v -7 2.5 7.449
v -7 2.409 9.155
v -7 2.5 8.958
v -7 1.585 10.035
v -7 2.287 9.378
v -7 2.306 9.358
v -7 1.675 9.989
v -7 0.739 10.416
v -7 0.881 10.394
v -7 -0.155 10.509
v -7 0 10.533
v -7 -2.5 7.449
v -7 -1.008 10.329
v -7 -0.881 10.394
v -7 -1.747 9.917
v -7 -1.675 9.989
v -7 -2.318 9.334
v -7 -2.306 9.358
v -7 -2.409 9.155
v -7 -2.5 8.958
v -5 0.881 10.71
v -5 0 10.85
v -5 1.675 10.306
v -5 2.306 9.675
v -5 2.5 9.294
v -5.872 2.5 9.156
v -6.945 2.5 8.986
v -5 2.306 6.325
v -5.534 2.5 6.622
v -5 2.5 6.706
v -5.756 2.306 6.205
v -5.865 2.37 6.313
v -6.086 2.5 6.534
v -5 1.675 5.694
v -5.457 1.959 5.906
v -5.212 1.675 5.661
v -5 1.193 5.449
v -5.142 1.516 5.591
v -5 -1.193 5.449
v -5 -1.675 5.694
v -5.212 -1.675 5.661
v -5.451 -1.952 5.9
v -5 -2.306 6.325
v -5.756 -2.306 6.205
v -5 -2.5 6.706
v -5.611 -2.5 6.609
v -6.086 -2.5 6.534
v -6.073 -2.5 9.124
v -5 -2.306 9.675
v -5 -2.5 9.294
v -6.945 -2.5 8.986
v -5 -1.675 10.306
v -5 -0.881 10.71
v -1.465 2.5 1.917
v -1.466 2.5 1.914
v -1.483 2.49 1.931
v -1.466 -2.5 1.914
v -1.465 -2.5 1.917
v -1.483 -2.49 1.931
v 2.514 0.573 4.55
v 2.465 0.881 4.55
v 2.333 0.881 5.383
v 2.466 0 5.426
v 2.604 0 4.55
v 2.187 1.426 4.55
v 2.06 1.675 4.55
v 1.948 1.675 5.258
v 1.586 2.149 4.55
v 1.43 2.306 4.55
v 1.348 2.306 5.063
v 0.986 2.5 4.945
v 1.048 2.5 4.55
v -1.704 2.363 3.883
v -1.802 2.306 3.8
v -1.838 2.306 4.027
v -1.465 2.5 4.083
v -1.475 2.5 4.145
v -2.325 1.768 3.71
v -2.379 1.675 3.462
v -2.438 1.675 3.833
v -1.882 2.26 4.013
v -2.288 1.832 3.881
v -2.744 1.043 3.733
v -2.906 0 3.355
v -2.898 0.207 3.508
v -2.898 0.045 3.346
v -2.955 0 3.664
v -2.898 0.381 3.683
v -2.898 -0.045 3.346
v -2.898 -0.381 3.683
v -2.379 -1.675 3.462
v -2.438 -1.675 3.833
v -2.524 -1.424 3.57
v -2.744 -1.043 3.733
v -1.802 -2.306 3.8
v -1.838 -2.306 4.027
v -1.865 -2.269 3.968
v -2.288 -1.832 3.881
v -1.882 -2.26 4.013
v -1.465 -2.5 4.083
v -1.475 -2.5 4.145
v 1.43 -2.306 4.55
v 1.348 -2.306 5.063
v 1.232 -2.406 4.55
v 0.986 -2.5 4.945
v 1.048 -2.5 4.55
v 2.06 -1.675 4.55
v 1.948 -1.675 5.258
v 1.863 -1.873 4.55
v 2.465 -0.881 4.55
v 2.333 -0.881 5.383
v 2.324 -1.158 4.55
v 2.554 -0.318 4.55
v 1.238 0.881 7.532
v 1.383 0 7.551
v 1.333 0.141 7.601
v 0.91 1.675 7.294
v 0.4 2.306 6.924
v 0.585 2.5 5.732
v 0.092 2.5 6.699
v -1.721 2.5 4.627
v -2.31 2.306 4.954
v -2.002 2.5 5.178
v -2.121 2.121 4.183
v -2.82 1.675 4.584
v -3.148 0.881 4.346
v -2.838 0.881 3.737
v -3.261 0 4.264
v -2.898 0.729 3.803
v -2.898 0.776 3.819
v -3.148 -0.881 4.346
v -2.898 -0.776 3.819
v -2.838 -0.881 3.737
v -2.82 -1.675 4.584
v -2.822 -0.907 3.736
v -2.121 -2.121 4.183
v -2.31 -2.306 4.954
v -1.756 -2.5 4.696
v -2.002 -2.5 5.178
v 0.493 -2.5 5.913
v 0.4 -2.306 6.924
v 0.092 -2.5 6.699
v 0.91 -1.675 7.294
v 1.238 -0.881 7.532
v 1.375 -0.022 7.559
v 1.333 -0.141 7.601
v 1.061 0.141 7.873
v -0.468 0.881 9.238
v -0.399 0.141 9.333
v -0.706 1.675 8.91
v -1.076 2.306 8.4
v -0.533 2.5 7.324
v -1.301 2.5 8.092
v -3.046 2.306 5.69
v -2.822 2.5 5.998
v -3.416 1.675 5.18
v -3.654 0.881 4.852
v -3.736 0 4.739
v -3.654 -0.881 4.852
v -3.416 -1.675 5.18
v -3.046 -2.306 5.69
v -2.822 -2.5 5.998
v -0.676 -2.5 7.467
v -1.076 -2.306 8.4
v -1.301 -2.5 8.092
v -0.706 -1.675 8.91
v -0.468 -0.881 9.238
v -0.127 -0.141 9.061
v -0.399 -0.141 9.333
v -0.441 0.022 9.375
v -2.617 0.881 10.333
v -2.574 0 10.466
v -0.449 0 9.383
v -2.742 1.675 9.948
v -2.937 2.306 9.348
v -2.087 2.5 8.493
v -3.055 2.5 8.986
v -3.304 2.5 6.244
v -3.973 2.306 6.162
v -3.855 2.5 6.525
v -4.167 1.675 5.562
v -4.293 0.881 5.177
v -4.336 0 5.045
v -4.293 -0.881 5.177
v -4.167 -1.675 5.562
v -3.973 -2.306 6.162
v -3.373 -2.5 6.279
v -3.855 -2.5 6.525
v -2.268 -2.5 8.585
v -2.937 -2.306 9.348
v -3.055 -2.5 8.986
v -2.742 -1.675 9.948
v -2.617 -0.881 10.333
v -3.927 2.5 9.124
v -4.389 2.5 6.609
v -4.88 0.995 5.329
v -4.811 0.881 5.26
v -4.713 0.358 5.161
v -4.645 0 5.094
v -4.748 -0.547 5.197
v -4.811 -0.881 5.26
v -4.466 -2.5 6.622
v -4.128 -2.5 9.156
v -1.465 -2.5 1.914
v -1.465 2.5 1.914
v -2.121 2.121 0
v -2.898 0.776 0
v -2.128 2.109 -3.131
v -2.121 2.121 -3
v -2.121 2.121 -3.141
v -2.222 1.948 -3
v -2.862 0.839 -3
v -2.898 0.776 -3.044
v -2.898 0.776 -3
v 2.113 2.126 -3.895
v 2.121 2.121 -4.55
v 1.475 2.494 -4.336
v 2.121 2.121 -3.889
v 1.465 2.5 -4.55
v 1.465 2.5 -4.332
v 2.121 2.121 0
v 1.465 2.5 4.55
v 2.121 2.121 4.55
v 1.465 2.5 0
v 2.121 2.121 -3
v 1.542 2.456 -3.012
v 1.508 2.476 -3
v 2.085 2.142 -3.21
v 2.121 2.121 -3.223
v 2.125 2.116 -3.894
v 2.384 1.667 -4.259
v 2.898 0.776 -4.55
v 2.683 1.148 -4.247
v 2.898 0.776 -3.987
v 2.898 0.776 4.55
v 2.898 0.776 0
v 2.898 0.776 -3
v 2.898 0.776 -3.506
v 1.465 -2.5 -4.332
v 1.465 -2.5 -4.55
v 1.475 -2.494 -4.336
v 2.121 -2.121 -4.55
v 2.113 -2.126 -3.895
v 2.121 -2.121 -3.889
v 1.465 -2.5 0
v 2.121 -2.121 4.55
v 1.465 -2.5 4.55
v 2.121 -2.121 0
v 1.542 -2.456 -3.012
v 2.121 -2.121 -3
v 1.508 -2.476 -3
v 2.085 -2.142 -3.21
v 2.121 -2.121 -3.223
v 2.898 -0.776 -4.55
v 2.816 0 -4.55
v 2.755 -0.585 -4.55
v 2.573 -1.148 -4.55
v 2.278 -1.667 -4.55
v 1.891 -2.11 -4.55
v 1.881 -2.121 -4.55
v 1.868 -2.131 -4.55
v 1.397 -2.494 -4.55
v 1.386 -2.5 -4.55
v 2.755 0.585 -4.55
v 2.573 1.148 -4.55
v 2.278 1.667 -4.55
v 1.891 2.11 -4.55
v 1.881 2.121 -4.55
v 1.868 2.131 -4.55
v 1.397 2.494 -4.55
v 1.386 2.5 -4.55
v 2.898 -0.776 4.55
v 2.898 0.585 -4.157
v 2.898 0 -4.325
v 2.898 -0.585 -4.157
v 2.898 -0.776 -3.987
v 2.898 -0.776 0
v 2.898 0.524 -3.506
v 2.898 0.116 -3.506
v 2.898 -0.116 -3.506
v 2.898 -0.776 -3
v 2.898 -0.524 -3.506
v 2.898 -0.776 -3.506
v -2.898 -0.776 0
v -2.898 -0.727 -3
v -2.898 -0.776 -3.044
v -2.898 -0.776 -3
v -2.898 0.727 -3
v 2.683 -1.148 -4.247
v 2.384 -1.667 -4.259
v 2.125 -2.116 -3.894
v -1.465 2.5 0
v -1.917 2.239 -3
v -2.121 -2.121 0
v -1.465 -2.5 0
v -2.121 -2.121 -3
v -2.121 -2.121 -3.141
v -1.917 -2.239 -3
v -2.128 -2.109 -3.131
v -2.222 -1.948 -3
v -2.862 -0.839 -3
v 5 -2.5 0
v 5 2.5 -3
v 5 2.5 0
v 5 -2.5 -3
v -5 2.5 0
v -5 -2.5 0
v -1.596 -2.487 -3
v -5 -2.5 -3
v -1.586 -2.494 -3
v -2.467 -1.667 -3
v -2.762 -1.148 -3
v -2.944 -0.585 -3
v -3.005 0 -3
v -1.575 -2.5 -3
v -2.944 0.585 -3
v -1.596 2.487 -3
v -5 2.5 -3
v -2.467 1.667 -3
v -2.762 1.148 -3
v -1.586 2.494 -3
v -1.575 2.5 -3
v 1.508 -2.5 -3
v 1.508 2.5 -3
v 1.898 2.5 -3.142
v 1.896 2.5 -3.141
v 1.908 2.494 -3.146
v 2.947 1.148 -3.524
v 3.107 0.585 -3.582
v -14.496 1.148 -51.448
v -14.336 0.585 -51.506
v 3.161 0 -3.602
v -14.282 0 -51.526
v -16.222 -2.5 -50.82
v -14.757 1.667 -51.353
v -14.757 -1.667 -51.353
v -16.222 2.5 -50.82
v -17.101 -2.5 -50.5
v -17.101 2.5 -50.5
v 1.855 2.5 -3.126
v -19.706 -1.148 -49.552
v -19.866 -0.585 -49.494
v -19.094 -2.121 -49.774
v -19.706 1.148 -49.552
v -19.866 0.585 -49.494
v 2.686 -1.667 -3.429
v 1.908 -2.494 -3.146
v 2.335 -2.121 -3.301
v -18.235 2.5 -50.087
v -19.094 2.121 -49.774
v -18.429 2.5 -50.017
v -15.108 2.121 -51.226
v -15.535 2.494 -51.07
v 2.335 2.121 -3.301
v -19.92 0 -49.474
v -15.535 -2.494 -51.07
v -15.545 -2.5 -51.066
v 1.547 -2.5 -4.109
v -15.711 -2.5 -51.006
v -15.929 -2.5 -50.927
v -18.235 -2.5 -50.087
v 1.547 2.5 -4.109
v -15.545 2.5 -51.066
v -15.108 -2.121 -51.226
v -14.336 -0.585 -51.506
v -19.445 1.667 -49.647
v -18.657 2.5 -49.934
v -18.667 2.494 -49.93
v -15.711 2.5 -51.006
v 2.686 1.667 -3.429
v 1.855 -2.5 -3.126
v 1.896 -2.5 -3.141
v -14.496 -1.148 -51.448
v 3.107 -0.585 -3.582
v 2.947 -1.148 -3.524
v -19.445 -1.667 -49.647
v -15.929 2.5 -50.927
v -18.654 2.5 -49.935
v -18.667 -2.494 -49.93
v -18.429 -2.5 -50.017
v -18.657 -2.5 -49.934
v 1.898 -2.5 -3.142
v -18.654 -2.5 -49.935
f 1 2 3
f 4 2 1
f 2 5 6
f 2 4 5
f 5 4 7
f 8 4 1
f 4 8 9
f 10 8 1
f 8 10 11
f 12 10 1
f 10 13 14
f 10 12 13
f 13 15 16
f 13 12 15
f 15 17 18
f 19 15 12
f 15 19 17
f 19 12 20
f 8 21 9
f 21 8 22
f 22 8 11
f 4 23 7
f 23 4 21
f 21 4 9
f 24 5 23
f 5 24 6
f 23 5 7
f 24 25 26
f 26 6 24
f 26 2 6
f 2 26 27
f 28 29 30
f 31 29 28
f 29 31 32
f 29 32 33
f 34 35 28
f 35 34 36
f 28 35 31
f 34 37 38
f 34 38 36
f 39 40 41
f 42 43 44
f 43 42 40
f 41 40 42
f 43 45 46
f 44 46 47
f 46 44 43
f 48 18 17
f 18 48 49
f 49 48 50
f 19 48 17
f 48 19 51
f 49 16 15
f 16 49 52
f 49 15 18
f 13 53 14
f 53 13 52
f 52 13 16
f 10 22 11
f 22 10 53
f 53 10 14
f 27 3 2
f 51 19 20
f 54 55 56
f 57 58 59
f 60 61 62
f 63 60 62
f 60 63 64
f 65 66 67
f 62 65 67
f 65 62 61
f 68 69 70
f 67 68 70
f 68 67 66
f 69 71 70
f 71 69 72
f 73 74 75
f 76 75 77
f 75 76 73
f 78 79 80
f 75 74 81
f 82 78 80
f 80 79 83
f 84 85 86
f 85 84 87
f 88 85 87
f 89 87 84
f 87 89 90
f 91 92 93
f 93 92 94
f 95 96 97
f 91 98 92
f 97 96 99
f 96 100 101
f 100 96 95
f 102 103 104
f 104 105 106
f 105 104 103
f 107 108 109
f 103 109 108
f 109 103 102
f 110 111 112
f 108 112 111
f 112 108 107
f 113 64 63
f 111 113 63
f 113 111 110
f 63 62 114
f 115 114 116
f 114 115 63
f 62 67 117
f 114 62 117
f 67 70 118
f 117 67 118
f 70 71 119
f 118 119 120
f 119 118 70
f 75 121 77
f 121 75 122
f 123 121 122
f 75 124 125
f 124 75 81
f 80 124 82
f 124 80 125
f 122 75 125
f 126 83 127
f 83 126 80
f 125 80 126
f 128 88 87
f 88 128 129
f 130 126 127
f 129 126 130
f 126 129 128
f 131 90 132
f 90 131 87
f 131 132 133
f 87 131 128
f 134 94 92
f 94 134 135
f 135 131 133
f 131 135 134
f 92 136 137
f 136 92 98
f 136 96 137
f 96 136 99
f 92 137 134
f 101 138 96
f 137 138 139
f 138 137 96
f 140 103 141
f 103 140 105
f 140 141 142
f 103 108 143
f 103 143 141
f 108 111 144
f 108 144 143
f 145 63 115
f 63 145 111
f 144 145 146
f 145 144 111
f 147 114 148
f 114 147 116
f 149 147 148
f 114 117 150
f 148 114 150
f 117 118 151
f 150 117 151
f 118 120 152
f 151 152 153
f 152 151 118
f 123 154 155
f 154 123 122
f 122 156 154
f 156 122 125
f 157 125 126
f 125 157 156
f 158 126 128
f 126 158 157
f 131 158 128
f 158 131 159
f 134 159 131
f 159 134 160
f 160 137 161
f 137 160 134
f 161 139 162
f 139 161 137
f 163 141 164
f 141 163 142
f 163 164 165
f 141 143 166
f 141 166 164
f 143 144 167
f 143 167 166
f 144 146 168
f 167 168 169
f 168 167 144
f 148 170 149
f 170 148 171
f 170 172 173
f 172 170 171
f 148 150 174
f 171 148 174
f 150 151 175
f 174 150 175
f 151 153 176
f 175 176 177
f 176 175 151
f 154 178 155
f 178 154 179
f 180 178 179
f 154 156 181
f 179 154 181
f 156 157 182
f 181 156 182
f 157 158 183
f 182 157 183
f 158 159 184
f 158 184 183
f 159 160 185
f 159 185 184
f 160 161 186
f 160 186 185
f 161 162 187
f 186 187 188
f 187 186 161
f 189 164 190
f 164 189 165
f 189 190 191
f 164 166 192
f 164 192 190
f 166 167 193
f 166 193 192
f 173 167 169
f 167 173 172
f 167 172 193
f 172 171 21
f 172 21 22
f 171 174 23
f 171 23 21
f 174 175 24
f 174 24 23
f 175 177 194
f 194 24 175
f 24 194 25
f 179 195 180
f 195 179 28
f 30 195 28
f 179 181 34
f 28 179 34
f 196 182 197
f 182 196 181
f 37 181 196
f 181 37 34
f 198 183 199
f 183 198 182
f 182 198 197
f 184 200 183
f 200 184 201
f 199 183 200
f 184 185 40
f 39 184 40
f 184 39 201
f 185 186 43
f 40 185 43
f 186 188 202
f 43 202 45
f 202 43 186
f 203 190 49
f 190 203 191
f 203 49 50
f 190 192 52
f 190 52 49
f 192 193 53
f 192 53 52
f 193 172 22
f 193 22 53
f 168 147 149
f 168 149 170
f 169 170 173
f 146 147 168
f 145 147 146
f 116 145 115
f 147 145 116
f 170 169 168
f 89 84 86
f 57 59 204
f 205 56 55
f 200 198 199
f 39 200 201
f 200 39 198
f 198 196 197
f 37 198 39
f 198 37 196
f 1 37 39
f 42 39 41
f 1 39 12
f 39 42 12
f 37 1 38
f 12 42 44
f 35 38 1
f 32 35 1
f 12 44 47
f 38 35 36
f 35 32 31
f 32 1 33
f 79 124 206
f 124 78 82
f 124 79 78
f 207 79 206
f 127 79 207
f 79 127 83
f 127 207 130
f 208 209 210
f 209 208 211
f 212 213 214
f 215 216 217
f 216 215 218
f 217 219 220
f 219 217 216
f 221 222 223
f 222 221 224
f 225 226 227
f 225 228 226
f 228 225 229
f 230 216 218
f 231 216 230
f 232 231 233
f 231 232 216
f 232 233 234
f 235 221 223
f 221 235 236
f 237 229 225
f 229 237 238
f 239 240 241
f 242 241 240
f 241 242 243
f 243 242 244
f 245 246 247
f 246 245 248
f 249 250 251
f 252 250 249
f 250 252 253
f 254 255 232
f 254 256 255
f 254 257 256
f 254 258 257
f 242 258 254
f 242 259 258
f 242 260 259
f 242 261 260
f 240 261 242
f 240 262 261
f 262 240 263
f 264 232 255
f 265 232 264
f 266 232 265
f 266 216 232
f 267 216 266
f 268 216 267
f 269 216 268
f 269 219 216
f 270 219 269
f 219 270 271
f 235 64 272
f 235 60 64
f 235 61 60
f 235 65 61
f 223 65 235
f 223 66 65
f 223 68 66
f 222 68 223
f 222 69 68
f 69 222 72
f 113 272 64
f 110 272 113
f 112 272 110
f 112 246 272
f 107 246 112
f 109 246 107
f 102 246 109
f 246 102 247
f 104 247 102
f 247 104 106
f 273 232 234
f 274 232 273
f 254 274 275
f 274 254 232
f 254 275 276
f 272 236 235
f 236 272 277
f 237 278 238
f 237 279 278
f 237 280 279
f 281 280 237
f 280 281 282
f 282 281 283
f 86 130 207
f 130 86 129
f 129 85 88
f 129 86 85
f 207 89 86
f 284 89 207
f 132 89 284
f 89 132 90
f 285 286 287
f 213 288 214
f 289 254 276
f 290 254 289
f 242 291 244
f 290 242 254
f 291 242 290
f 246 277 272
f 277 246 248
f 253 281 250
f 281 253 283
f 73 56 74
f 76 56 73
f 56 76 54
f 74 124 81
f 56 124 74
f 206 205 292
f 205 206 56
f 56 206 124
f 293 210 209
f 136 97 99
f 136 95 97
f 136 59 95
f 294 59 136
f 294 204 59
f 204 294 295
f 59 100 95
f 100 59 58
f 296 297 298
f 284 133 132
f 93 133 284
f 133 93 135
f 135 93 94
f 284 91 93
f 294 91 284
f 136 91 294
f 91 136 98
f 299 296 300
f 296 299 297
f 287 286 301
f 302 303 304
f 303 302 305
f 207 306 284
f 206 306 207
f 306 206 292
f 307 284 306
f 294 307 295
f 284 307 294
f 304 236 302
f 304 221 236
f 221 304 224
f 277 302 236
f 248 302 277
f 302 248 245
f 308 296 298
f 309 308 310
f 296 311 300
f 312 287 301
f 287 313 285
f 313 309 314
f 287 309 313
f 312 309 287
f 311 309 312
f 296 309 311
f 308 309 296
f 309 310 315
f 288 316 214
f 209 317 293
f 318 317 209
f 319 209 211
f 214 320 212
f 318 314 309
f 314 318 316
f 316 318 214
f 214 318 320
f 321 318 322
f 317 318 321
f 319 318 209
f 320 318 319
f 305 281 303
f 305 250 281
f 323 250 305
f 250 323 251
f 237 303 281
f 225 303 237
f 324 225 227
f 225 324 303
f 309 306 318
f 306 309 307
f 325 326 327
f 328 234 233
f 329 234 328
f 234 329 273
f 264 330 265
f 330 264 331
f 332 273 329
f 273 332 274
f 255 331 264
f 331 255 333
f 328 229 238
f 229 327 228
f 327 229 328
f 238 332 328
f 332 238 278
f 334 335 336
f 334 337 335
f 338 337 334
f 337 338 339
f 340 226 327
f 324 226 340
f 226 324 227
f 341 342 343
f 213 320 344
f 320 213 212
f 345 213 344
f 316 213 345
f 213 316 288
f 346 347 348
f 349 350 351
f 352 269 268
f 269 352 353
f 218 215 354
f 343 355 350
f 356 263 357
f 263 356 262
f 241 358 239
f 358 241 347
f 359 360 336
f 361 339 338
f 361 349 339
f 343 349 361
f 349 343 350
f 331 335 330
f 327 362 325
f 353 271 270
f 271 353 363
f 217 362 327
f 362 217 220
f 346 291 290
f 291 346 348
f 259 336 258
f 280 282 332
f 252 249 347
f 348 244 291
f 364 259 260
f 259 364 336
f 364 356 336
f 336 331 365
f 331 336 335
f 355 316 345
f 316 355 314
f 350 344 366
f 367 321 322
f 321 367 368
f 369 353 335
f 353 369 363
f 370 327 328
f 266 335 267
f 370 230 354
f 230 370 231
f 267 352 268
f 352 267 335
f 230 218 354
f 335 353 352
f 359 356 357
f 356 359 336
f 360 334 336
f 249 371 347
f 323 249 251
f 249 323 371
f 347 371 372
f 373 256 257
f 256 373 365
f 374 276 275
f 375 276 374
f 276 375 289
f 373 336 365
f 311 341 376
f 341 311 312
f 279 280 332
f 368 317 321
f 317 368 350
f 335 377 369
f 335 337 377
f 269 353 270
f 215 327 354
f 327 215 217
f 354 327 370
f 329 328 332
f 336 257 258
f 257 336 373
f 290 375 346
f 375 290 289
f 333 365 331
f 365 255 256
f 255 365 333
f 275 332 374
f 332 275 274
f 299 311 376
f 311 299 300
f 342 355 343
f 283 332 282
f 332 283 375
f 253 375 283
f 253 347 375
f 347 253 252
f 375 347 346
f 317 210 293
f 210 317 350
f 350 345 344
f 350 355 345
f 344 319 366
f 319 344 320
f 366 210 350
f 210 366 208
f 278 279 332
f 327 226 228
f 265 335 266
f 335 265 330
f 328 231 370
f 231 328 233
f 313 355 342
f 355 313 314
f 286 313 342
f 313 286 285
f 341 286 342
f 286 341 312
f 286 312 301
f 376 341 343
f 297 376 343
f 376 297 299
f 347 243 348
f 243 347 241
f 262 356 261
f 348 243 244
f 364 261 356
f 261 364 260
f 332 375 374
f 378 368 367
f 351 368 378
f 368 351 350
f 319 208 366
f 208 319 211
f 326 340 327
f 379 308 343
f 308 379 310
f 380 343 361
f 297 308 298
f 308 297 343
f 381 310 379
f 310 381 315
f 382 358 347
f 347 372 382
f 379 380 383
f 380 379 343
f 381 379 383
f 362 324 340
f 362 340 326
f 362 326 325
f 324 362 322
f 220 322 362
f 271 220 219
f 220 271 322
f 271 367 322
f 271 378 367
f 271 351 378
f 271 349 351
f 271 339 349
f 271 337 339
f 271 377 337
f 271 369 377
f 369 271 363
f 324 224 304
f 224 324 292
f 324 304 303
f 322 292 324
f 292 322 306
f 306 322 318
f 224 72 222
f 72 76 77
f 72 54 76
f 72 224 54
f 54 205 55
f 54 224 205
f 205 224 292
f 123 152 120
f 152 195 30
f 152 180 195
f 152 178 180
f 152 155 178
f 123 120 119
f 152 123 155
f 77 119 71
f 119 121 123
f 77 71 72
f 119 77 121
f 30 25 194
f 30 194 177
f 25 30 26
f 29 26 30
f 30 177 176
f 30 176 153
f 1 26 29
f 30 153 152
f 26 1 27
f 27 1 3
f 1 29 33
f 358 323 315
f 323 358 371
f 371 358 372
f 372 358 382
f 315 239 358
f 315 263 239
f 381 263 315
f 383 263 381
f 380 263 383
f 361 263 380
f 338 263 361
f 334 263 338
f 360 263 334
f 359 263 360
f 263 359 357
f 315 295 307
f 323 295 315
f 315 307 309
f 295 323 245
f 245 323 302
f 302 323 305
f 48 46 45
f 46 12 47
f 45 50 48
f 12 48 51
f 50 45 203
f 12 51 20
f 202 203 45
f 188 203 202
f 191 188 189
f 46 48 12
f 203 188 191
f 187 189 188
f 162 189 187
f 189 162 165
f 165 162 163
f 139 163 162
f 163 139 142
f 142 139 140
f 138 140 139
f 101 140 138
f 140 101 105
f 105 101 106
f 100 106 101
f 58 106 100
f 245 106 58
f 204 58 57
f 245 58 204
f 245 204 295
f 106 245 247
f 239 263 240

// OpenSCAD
// file: my-pegboard.scad
// Include this file to make pegstr accomodate my pegboard
include <../pegstr/pegstr.scad>

// Note that my board seems to be a bit abnormal
board_thickness = 6;

holder_y_count = 1;

// Because we changed hidden parameters, these need to be recalculated
clip_height = 2*hole_size + 2;
// main file
include <./my-pegboard.scad>


plate_x = 10;
plate_y = 10;
holder_length = 50;
plate_thickness = 3;

// Offset of plate to make it flush with board
plate_offset = 3;

// Offset of holder to make sure there's not a hole from the angle
holder_offset = 1;

// Angle to keep things on the surface
angle = 20;

module holder() {
    union() {
        pin(true);
        translate([0, 0, -board_thickness + plate_thickness/2 + plate_offset])  {
            // Plate to hold against pegboard surface
            cube([plate_x, plate_y, plate_thickness], center=true);
            translate([-holder_length * sin(angle), 0, -holder_length + holder_offset]) {
                rotate([0, angle, 0]) cylinder(holder_length + holder_offset, hole_size / 2, hole_size / 2);
            }
        }
    }
}

// Flatten sides of model so it can print without supports

// Size big compared to model
// TODO Actually calculate from parameters
big = 1000;

// Thickness to cut
// This should give flat sides for printability, but not be much
//  smaller than the pegboard's hole diameter
thickness = 5;
intersection() {
    cube([big, thickness, big], center=true);
    holder();
}
